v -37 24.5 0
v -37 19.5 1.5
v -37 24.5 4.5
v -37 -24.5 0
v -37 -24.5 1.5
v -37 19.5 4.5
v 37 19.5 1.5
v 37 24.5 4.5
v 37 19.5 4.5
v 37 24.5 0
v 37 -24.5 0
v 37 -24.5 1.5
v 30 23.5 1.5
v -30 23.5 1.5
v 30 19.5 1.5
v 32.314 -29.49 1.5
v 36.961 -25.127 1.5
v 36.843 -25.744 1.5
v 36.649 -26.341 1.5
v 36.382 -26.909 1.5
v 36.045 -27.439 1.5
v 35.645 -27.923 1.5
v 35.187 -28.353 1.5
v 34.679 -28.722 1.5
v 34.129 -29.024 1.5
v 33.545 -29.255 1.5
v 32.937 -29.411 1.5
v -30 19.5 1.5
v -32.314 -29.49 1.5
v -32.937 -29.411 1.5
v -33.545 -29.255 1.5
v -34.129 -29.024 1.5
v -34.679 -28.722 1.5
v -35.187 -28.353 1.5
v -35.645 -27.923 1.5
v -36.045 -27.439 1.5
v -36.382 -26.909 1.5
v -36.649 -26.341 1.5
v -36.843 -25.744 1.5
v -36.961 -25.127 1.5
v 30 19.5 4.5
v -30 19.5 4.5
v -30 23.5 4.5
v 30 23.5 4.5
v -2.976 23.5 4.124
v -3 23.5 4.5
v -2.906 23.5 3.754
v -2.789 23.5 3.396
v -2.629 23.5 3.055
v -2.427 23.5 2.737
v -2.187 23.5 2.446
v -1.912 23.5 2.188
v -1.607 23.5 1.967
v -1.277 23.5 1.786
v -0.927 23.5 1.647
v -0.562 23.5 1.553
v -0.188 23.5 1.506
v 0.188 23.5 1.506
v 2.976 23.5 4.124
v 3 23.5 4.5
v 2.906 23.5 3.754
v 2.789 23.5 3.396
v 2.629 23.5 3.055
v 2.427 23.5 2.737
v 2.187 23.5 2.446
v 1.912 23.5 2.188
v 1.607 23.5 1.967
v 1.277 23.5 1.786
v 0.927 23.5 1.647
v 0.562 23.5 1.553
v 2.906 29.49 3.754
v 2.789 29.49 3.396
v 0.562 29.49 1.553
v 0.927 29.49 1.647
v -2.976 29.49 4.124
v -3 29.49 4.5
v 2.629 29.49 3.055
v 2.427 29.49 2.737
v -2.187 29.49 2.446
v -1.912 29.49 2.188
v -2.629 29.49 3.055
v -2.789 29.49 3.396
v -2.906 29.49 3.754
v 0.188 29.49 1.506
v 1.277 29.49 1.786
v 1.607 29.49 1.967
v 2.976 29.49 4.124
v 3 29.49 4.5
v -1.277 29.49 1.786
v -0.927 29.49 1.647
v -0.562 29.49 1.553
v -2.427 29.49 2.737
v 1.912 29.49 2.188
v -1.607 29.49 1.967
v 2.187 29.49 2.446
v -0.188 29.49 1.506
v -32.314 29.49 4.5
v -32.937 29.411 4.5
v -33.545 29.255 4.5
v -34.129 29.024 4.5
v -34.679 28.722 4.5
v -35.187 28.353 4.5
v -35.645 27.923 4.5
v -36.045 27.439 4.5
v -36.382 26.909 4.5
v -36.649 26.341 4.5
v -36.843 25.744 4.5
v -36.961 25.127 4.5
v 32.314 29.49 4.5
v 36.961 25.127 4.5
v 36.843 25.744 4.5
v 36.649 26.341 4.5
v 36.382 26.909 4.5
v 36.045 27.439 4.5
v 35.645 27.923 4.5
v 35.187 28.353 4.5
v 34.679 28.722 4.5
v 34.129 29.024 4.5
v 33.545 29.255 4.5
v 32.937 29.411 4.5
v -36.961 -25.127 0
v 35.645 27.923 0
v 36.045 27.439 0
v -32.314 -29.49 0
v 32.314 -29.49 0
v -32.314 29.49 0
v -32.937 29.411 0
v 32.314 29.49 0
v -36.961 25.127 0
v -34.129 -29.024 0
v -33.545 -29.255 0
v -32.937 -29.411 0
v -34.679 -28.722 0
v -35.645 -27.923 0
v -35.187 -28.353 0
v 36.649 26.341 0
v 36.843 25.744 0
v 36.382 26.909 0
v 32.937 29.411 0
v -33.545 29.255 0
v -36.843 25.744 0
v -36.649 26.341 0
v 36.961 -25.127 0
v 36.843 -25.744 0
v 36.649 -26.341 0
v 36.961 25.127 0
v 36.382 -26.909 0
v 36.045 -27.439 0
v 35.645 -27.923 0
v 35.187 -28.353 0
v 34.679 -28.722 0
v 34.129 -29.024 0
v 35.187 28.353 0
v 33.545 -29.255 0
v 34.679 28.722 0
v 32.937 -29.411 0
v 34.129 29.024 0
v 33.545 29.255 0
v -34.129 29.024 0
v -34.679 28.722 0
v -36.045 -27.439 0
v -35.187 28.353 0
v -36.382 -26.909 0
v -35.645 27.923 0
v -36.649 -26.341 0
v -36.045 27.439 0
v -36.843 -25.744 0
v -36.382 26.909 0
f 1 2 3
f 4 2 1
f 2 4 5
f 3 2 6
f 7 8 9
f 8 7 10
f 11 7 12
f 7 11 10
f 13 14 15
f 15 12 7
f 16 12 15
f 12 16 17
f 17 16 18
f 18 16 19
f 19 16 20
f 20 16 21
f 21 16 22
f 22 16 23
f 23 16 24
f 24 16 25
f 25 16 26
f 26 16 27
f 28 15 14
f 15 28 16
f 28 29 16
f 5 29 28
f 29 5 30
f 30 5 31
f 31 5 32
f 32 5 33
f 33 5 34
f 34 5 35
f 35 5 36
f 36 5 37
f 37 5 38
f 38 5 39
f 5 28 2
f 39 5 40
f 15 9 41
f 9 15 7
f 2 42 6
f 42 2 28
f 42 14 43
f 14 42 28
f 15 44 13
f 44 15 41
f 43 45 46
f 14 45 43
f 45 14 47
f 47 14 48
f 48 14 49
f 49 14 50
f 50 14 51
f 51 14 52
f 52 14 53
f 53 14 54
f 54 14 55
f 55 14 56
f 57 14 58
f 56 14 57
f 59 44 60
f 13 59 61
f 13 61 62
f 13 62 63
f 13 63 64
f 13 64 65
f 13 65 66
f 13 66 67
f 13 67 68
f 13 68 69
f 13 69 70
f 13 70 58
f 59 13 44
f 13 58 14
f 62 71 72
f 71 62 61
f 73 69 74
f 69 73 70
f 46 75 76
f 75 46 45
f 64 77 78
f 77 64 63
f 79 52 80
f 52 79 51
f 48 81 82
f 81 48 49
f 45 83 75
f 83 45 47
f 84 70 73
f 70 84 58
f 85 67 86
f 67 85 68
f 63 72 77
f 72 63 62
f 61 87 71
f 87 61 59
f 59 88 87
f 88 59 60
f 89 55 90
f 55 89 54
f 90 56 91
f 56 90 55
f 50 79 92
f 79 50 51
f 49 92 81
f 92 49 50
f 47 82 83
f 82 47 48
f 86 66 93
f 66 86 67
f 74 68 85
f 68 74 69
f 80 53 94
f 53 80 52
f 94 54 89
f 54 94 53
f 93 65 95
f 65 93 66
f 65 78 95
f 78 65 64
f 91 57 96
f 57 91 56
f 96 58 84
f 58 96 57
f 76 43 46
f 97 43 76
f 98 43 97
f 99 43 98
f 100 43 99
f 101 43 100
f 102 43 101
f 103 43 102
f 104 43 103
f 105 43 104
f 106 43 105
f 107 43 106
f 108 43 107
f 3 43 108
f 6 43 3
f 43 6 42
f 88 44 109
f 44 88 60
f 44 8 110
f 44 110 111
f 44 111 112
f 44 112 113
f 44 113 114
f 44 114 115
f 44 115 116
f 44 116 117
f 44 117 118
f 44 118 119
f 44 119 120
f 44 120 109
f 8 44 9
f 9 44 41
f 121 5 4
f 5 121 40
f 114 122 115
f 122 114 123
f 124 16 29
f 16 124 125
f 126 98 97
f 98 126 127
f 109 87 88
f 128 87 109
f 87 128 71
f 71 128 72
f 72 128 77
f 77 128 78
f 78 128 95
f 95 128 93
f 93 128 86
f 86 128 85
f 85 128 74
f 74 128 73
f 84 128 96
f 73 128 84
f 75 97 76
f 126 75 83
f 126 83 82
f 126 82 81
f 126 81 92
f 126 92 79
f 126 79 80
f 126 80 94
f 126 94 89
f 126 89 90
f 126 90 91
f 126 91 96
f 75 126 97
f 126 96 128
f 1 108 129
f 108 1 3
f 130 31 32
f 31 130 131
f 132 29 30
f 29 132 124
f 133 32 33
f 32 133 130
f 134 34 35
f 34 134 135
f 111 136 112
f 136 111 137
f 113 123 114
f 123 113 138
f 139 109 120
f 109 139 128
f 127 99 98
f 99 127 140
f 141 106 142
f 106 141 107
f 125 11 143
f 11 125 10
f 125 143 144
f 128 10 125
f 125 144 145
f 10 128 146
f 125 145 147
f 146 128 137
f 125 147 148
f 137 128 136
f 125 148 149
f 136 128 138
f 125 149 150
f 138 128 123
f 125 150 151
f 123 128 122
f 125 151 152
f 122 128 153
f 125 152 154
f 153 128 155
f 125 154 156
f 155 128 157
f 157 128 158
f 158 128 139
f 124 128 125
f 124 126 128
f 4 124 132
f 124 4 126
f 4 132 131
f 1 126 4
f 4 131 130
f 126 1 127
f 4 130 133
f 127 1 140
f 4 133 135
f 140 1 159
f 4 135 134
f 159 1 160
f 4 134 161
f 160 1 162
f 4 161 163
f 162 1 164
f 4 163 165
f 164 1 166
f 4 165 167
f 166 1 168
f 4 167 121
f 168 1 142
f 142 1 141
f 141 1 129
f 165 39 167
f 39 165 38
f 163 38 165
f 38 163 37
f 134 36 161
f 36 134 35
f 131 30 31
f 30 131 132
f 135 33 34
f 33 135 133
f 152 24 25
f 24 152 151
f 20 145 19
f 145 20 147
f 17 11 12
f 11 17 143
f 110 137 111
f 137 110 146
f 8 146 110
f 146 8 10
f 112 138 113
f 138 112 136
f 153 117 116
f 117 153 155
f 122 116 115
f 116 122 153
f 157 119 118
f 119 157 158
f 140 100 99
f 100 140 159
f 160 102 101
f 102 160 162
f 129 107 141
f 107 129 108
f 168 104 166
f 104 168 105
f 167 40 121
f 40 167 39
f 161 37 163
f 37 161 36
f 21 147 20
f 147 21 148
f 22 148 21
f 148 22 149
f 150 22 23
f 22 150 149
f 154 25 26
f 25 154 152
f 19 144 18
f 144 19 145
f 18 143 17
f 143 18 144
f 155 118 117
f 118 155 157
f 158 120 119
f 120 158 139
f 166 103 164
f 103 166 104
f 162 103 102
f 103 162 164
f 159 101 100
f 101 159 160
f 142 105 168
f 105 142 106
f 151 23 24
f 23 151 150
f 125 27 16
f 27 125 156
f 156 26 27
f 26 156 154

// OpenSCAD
$fn = 50;


difference() {
	union() {
		hull() {
			translate(v = [-32.0000000000, 24.5000000000, 0]) {
				cylinder(h = 9, r = 5);
			}
			translate(v = [32.0000000000, 24.5000000000, 0]) {
				cylinder(h = 9, r = 5);
			}
			translate(v = [-32.0000000000, -24.5000000000, 0]) {
				cylinder(h = 9, r = 5);
			}
			translate(v = [32.0000000000, -24.5000000000, 0]) {
				cylinder(h = 9, r = 5);
			}
		}
	}
	union() {
		#translate(v = [-37.0000000000, -29.5000000000, 1.5000000000]) {
			cube(size = [74, 49, 6]);
		}
		#translate(v = [-30.0000000000, -29.5000000000, 1.5000000000]) {
			cube(size = [60, 53, 6]);
		}
		#translate(v = [0, 29.5000000000, 4.5000000000]) {
			rotate(a = [90, 0, 0]) {
				cylinder(h = 59, r = 3.0000000000);
			}
		}
		translate(v = [-250.0000000000, -250.0000000000, 4.5000000000]) {
			cube(size = [500, 500, 500]);
		}
		translate(v = [-250.0000000000, -250.0000000000, 4.5000000000]) {
			cube(size = [500, 500, 500]);
		}
		translate(v = [-250.0000000000, -250.0000000000, 4.5000000000]) {
			cube(size = [500, 500, 500]);
		}
	}
}
